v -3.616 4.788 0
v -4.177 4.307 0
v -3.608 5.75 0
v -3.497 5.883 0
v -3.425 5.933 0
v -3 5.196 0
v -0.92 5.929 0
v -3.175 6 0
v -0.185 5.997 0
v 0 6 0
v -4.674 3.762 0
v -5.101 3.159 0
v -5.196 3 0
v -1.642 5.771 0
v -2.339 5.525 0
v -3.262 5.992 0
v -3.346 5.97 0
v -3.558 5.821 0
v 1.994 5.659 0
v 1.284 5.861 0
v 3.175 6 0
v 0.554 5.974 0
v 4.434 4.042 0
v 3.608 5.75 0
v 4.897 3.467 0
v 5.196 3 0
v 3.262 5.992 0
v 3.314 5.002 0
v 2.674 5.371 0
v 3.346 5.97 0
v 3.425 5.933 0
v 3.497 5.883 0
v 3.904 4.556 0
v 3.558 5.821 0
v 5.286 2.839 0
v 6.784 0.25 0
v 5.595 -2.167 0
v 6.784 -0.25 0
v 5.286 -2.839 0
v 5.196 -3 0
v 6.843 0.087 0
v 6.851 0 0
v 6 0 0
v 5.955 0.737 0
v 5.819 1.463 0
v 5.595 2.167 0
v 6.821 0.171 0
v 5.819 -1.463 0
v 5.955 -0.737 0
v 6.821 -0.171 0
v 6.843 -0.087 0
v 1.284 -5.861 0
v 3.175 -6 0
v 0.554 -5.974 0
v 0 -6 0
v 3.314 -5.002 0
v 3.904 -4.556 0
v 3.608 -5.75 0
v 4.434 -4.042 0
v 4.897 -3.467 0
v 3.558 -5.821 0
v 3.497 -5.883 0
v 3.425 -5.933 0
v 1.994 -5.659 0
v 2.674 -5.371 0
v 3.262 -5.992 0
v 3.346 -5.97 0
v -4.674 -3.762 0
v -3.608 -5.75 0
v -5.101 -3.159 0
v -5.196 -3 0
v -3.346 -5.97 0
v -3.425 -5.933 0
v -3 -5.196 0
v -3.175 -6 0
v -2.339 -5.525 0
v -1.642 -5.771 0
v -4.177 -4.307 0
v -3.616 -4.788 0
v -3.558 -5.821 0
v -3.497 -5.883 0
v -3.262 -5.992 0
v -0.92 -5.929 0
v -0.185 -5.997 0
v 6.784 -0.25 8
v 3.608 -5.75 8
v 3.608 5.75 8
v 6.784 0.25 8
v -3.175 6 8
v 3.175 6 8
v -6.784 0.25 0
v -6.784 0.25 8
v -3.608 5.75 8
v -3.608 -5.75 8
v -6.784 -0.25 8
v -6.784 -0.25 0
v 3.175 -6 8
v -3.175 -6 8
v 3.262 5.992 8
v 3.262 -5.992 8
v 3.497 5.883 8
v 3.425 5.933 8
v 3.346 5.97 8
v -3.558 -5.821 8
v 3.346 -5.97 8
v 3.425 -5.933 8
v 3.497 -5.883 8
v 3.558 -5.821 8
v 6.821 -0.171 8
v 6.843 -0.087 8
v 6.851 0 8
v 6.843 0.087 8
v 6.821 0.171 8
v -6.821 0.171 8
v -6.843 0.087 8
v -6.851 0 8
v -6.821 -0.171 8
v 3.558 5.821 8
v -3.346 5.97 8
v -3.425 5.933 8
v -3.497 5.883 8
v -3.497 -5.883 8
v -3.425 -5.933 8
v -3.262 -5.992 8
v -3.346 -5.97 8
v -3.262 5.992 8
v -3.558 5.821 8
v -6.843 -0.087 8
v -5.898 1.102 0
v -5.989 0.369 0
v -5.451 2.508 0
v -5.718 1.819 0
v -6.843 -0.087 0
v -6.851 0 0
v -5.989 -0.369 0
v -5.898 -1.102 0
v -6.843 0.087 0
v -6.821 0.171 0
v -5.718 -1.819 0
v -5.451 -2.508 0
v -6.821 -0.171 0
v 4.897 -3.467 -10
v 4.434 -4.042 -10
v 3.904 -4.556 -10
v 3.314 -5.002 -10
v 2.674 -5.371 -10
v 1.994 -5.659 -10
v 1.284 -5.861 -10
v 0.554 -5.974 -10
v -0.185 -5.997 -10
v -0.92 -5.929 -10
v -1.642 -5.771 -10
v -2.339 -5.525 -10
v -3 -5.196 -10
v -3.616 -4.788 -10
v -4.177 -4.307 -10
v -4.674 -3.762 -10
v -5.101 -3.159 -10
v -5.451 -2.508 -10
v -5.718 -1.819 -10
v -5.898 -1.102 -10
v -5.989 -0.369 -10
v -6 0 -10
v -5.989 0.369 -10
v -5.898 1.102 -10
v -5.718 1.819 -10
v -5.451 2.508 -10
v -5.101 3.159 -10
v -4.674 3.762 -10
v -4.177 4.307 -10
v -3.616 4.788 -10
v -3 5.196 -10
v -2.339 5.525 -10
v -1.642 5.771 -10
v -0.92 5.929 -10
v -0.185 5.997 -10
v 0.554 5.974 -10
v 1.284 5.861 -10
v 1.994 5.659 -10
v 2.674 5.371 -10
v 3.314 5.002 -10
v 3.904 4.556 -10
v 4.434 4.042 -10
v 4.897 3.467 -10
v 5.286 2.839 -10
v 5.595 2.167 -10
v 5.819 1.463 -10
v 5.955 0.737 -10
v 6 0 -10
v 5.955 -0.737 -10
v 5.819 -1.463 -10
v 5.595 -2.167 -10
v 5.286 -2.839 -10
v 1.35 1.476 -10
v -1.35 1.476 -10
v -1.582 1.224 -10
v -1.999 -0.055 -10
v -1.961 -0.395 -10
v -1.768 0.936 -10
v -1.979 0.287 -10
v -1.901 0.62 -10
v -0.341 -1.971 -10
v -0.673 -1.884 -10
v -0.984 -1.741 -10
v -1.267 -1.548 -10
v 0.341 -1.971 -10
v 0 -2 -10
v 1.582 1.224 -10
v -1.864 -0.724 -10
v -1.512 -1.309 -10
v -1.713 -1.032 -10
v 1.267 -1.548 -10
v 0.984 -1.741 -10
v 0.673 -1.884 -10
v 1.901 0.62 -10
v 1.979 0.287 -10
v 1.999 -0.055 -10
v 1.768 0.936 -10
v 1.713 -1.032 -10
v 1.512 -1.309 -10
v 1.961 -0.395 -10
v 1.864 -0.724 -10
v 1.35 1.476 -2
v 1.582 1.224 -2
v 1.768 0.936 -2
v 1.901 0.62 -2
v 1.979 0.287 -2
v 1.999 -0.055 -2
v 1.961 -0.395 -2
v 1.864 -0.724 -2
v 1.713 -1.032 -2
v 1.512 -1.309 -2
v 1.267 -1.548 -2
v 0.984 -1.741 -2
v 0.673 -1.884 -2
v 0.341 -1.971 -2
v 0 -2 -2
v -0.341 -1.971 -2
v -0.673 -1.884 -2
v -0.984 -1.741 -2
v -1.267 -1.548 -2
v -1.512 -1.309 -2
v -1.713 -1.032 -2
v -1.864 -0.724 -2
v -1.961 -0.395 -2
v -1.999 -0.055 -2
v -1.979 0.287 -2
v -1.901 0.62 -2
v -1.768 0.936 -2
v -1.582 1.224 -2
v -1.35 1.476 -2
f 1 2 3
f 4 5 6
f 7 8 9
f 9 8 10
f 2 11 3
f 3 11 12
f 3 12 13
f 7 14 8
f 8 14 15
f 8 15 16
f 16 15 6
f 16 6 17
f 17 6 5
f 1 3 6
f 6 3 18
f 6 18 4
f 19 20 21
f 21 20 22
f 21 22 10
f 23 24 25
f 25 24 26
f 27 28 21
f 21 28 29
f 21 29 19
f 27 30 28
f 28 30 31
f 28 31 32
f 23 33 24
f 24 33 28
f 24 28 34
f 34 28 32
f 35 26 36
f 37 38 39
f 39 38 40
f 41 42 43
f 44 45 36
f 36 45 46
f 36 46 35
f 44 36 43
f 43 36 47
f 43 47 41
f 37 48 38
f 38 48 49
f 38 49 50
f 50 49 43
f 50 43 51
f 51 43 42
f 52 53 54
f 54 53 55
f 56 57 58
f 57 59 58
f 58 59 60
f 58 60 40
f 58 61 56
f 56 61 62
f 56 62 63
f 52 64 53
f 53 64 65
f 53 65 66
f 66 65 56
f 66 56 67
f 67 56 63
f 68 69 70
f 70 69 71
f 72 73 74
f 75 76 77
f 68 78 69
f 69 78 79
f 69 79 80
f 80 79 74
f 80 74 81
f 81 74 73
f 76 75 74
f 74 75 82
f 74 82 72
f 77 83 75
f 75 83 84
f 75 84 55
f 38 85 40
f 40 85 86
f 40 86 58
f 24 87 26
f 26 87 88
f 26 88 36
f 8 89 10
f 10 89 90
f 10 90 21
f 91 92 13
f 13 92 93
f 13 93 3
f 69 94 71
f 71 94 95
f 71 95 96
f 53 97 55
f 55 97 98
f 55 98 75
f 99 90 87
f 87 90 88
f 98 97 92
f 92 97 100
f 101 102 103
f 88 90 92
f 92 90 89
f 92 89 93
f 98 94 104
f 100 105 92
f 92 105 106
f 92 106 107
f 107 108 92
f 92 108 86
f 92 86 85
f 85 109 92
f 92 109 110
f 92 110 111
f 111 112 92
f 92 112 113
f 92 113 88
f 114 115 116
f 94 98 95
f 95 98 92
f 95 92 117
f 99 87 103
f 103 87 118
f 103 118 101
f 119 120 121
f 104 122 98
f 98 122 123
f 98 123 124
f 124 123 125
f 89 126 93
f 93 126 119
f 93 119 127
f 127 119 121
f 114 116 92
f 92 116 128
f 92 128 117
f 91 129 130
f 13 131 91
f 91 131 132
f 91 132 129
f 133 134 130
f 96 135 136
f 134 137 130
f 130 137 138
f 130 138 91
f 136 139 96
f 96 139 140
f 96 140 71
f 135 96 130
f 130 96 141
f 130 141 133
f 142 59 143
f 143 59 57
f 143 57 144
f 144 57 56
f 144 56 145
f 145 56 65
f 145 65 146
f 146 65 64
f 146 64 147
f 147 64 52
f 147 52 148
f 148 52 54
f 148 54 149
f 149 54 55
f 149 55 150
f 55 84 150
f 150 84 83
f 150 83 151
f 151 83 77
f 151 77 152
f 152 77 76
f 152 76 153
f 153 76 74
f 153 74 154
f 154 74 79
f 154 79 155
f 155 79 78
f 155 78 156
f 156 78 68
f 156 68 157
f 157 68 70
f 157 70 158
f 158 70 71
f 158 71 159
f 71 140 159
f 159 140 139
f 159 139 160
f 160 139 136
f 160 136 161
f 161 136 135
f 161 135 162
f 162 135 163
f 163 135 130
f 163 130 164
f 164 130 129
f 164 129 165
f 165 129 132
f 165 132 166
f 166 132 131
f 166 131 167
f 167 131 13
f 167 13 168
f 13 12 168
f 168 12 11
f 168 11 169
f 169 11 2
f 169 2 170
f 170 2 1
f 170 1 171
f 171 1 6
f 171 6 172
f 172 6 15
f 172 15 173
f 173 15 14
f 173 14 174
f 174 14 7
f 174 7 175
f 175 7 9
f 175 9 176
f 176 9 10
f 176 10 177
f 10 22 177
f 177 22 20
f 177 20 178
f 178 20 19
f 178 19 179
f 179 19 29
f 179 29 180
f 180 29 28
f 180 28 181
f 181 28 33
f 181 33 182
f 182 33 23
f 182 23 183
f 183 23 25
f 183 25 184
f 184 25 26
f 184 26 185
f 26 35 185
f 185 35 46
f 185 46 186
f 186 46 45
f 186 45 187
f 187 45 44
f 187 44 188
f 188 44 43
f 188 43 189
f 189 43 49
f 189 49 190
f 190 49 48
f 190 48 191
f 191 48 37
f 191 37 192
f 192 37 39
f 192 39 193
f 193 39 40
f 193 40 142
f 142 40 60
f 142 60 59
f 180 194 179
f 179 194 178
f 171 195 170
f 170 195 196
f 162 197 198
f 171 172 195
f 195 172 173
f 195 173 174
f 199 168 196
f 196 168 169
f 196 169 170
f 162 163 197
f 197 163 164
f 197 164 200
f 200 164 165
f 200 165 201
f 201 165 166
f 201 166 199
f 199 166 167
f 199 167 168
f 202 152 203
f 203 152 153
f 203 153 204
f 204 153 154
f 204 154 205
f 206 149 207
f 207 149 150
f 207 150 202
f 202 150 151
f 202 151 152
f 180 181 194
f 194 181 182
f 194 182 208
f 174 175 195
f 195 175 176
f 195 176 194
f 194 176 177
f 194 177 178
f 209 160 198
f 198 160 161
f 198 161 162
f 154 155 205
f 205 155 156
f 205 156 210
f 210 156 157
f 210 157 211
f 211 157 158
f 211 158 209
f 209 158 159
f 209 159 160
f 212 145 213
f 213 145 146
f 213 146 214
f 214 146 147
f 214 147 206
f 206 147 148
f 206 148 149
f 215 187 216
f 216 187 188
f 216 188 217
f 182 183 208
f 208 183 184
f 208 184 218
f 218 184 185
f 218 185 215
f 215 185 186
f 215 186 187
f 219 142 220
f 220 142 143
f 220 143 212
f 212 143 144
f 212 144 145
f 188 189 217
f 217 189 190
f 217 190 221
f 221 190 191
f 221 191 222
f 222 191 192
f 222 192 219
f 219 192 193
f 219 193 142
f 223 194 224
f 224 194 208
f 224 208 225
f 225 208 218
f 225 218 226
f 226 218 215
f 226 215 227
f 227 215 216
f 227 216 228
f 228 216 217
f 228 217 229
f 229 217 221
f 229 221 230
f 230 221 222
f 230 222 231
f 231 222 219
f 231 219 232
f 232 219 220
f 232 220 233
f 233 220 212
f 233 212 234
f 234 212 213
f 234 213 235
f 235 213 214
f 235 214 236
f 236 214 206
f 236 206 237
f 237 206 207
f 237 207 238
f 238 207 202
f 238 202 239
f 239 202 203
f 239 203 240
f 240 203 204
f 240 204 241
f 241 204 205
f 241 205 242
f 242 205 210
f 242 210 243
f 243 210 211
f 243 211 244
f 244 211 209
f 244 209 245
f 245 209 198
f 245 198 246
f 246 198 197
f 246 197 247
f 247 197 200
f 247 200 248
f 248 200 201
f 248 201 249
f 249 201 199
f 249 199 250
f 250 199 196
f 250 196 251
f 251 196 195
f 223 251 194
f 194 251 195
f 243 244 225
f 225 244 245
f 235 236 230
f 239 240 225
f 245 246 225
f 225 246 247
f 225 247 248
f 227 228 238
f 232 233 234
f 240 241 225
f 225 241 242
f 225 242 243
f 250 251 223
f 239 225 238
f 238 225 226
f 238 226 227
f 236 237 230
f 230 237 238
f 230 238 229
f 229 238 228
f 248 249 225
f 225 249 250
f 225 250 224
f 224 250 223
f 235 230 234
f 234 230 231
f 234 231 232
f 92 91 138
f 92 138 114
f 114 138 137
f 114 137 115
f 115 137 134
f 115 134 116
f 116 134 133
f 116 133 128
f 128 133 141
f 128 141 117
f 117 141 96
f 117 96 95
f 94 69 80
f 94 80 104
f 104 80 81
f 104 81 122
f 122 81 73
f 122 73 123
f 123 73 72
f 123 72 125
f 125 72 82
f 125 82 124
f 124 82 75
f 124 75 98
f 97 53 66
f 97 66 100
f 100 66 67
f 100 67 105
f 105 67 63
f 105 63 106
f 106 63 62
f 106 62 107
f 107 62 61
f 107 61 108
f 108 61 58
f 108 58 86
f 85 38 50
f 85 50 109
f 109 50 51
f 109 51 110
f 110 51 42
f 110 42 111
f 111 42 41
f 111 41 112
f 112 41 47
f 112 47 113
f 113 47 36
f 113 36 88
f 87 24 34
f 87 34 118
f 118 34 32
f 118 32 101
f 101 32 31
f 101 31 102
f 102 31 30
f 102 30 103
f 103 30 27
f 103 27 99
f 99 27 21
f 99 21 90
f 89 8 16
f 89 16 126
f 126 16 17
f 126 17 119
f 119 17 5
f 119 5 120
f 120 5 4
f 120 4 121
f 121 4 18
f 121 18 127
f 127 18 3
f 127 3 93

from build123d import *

# Parameters (mm, degrees)
BOSS_EXTRUDE1_DEPTH = 8
SKETCH2_R           = 6
BOSS_EXTRUDE2_DEPTH = 10
CUT_EXTRUDE1_DEPTH  = 8
FILLET1_R           = 0.5


with BuildPart() as part:
    # Sketch1 → Boss-Extrude1 (new body)
    with BuildSketch(Plane.XY):
        Polygon((-3.464101615, -6), (3.464101615, -6), (6.92820323, 0), (3.464101615, 6), (-3.464101615, 6), (-6.92820323, 0), align=None)
    extrude(amount=BOSS_EXTRUDE1_DEPTH)

    # Sketch2 → Boss-Extrude2 (add)
    with BuildSketch(Plane(origin=(0, 0, 0), x_dir=(-1, 0, 0), z_dir=(0, 0, -1))):
        with Locations(Location((0, 0, 0), (0, 0, 150))):
            Circle(SKETCH2_R)
    extrude(amount=BOSS_EXTRUDE2_DEPTH)

    # Sketch3 → Cut-Extrude1 (cut)
    with BuildSketch(Plane(origin=(0, 0, -10), x_dir=(-1, 0, 0), z_dir=(0, 0, -1))):
        with BuildLine():
            Line((-1.35, 1.475635456), (1.35, 1.475635456))
            ThreePointArc((1.35, 1.475635456), (0, -2), (-1.35, 1.475635456))
        make_face()
    extrude(amount=-CUT_EXTRUDE1_DEPTH, mode=Mode.SUBTRACT)

    # Fillet1
    fillet1_edges = [part.edges().sort_by_distance(p)[0] for p in [
        (3.464101615, -6, 4),
        (-3.464101615, -6, 4),
        (-6.92820323, 0, 4),
        (-3.464101615, 6, 4),
        (3.464101615, 6, 4),
        (6.92820323, 0, 4),
    ]]
    fillet(fillet1_edges, radius=FILLET1_R)


solid = part.part
